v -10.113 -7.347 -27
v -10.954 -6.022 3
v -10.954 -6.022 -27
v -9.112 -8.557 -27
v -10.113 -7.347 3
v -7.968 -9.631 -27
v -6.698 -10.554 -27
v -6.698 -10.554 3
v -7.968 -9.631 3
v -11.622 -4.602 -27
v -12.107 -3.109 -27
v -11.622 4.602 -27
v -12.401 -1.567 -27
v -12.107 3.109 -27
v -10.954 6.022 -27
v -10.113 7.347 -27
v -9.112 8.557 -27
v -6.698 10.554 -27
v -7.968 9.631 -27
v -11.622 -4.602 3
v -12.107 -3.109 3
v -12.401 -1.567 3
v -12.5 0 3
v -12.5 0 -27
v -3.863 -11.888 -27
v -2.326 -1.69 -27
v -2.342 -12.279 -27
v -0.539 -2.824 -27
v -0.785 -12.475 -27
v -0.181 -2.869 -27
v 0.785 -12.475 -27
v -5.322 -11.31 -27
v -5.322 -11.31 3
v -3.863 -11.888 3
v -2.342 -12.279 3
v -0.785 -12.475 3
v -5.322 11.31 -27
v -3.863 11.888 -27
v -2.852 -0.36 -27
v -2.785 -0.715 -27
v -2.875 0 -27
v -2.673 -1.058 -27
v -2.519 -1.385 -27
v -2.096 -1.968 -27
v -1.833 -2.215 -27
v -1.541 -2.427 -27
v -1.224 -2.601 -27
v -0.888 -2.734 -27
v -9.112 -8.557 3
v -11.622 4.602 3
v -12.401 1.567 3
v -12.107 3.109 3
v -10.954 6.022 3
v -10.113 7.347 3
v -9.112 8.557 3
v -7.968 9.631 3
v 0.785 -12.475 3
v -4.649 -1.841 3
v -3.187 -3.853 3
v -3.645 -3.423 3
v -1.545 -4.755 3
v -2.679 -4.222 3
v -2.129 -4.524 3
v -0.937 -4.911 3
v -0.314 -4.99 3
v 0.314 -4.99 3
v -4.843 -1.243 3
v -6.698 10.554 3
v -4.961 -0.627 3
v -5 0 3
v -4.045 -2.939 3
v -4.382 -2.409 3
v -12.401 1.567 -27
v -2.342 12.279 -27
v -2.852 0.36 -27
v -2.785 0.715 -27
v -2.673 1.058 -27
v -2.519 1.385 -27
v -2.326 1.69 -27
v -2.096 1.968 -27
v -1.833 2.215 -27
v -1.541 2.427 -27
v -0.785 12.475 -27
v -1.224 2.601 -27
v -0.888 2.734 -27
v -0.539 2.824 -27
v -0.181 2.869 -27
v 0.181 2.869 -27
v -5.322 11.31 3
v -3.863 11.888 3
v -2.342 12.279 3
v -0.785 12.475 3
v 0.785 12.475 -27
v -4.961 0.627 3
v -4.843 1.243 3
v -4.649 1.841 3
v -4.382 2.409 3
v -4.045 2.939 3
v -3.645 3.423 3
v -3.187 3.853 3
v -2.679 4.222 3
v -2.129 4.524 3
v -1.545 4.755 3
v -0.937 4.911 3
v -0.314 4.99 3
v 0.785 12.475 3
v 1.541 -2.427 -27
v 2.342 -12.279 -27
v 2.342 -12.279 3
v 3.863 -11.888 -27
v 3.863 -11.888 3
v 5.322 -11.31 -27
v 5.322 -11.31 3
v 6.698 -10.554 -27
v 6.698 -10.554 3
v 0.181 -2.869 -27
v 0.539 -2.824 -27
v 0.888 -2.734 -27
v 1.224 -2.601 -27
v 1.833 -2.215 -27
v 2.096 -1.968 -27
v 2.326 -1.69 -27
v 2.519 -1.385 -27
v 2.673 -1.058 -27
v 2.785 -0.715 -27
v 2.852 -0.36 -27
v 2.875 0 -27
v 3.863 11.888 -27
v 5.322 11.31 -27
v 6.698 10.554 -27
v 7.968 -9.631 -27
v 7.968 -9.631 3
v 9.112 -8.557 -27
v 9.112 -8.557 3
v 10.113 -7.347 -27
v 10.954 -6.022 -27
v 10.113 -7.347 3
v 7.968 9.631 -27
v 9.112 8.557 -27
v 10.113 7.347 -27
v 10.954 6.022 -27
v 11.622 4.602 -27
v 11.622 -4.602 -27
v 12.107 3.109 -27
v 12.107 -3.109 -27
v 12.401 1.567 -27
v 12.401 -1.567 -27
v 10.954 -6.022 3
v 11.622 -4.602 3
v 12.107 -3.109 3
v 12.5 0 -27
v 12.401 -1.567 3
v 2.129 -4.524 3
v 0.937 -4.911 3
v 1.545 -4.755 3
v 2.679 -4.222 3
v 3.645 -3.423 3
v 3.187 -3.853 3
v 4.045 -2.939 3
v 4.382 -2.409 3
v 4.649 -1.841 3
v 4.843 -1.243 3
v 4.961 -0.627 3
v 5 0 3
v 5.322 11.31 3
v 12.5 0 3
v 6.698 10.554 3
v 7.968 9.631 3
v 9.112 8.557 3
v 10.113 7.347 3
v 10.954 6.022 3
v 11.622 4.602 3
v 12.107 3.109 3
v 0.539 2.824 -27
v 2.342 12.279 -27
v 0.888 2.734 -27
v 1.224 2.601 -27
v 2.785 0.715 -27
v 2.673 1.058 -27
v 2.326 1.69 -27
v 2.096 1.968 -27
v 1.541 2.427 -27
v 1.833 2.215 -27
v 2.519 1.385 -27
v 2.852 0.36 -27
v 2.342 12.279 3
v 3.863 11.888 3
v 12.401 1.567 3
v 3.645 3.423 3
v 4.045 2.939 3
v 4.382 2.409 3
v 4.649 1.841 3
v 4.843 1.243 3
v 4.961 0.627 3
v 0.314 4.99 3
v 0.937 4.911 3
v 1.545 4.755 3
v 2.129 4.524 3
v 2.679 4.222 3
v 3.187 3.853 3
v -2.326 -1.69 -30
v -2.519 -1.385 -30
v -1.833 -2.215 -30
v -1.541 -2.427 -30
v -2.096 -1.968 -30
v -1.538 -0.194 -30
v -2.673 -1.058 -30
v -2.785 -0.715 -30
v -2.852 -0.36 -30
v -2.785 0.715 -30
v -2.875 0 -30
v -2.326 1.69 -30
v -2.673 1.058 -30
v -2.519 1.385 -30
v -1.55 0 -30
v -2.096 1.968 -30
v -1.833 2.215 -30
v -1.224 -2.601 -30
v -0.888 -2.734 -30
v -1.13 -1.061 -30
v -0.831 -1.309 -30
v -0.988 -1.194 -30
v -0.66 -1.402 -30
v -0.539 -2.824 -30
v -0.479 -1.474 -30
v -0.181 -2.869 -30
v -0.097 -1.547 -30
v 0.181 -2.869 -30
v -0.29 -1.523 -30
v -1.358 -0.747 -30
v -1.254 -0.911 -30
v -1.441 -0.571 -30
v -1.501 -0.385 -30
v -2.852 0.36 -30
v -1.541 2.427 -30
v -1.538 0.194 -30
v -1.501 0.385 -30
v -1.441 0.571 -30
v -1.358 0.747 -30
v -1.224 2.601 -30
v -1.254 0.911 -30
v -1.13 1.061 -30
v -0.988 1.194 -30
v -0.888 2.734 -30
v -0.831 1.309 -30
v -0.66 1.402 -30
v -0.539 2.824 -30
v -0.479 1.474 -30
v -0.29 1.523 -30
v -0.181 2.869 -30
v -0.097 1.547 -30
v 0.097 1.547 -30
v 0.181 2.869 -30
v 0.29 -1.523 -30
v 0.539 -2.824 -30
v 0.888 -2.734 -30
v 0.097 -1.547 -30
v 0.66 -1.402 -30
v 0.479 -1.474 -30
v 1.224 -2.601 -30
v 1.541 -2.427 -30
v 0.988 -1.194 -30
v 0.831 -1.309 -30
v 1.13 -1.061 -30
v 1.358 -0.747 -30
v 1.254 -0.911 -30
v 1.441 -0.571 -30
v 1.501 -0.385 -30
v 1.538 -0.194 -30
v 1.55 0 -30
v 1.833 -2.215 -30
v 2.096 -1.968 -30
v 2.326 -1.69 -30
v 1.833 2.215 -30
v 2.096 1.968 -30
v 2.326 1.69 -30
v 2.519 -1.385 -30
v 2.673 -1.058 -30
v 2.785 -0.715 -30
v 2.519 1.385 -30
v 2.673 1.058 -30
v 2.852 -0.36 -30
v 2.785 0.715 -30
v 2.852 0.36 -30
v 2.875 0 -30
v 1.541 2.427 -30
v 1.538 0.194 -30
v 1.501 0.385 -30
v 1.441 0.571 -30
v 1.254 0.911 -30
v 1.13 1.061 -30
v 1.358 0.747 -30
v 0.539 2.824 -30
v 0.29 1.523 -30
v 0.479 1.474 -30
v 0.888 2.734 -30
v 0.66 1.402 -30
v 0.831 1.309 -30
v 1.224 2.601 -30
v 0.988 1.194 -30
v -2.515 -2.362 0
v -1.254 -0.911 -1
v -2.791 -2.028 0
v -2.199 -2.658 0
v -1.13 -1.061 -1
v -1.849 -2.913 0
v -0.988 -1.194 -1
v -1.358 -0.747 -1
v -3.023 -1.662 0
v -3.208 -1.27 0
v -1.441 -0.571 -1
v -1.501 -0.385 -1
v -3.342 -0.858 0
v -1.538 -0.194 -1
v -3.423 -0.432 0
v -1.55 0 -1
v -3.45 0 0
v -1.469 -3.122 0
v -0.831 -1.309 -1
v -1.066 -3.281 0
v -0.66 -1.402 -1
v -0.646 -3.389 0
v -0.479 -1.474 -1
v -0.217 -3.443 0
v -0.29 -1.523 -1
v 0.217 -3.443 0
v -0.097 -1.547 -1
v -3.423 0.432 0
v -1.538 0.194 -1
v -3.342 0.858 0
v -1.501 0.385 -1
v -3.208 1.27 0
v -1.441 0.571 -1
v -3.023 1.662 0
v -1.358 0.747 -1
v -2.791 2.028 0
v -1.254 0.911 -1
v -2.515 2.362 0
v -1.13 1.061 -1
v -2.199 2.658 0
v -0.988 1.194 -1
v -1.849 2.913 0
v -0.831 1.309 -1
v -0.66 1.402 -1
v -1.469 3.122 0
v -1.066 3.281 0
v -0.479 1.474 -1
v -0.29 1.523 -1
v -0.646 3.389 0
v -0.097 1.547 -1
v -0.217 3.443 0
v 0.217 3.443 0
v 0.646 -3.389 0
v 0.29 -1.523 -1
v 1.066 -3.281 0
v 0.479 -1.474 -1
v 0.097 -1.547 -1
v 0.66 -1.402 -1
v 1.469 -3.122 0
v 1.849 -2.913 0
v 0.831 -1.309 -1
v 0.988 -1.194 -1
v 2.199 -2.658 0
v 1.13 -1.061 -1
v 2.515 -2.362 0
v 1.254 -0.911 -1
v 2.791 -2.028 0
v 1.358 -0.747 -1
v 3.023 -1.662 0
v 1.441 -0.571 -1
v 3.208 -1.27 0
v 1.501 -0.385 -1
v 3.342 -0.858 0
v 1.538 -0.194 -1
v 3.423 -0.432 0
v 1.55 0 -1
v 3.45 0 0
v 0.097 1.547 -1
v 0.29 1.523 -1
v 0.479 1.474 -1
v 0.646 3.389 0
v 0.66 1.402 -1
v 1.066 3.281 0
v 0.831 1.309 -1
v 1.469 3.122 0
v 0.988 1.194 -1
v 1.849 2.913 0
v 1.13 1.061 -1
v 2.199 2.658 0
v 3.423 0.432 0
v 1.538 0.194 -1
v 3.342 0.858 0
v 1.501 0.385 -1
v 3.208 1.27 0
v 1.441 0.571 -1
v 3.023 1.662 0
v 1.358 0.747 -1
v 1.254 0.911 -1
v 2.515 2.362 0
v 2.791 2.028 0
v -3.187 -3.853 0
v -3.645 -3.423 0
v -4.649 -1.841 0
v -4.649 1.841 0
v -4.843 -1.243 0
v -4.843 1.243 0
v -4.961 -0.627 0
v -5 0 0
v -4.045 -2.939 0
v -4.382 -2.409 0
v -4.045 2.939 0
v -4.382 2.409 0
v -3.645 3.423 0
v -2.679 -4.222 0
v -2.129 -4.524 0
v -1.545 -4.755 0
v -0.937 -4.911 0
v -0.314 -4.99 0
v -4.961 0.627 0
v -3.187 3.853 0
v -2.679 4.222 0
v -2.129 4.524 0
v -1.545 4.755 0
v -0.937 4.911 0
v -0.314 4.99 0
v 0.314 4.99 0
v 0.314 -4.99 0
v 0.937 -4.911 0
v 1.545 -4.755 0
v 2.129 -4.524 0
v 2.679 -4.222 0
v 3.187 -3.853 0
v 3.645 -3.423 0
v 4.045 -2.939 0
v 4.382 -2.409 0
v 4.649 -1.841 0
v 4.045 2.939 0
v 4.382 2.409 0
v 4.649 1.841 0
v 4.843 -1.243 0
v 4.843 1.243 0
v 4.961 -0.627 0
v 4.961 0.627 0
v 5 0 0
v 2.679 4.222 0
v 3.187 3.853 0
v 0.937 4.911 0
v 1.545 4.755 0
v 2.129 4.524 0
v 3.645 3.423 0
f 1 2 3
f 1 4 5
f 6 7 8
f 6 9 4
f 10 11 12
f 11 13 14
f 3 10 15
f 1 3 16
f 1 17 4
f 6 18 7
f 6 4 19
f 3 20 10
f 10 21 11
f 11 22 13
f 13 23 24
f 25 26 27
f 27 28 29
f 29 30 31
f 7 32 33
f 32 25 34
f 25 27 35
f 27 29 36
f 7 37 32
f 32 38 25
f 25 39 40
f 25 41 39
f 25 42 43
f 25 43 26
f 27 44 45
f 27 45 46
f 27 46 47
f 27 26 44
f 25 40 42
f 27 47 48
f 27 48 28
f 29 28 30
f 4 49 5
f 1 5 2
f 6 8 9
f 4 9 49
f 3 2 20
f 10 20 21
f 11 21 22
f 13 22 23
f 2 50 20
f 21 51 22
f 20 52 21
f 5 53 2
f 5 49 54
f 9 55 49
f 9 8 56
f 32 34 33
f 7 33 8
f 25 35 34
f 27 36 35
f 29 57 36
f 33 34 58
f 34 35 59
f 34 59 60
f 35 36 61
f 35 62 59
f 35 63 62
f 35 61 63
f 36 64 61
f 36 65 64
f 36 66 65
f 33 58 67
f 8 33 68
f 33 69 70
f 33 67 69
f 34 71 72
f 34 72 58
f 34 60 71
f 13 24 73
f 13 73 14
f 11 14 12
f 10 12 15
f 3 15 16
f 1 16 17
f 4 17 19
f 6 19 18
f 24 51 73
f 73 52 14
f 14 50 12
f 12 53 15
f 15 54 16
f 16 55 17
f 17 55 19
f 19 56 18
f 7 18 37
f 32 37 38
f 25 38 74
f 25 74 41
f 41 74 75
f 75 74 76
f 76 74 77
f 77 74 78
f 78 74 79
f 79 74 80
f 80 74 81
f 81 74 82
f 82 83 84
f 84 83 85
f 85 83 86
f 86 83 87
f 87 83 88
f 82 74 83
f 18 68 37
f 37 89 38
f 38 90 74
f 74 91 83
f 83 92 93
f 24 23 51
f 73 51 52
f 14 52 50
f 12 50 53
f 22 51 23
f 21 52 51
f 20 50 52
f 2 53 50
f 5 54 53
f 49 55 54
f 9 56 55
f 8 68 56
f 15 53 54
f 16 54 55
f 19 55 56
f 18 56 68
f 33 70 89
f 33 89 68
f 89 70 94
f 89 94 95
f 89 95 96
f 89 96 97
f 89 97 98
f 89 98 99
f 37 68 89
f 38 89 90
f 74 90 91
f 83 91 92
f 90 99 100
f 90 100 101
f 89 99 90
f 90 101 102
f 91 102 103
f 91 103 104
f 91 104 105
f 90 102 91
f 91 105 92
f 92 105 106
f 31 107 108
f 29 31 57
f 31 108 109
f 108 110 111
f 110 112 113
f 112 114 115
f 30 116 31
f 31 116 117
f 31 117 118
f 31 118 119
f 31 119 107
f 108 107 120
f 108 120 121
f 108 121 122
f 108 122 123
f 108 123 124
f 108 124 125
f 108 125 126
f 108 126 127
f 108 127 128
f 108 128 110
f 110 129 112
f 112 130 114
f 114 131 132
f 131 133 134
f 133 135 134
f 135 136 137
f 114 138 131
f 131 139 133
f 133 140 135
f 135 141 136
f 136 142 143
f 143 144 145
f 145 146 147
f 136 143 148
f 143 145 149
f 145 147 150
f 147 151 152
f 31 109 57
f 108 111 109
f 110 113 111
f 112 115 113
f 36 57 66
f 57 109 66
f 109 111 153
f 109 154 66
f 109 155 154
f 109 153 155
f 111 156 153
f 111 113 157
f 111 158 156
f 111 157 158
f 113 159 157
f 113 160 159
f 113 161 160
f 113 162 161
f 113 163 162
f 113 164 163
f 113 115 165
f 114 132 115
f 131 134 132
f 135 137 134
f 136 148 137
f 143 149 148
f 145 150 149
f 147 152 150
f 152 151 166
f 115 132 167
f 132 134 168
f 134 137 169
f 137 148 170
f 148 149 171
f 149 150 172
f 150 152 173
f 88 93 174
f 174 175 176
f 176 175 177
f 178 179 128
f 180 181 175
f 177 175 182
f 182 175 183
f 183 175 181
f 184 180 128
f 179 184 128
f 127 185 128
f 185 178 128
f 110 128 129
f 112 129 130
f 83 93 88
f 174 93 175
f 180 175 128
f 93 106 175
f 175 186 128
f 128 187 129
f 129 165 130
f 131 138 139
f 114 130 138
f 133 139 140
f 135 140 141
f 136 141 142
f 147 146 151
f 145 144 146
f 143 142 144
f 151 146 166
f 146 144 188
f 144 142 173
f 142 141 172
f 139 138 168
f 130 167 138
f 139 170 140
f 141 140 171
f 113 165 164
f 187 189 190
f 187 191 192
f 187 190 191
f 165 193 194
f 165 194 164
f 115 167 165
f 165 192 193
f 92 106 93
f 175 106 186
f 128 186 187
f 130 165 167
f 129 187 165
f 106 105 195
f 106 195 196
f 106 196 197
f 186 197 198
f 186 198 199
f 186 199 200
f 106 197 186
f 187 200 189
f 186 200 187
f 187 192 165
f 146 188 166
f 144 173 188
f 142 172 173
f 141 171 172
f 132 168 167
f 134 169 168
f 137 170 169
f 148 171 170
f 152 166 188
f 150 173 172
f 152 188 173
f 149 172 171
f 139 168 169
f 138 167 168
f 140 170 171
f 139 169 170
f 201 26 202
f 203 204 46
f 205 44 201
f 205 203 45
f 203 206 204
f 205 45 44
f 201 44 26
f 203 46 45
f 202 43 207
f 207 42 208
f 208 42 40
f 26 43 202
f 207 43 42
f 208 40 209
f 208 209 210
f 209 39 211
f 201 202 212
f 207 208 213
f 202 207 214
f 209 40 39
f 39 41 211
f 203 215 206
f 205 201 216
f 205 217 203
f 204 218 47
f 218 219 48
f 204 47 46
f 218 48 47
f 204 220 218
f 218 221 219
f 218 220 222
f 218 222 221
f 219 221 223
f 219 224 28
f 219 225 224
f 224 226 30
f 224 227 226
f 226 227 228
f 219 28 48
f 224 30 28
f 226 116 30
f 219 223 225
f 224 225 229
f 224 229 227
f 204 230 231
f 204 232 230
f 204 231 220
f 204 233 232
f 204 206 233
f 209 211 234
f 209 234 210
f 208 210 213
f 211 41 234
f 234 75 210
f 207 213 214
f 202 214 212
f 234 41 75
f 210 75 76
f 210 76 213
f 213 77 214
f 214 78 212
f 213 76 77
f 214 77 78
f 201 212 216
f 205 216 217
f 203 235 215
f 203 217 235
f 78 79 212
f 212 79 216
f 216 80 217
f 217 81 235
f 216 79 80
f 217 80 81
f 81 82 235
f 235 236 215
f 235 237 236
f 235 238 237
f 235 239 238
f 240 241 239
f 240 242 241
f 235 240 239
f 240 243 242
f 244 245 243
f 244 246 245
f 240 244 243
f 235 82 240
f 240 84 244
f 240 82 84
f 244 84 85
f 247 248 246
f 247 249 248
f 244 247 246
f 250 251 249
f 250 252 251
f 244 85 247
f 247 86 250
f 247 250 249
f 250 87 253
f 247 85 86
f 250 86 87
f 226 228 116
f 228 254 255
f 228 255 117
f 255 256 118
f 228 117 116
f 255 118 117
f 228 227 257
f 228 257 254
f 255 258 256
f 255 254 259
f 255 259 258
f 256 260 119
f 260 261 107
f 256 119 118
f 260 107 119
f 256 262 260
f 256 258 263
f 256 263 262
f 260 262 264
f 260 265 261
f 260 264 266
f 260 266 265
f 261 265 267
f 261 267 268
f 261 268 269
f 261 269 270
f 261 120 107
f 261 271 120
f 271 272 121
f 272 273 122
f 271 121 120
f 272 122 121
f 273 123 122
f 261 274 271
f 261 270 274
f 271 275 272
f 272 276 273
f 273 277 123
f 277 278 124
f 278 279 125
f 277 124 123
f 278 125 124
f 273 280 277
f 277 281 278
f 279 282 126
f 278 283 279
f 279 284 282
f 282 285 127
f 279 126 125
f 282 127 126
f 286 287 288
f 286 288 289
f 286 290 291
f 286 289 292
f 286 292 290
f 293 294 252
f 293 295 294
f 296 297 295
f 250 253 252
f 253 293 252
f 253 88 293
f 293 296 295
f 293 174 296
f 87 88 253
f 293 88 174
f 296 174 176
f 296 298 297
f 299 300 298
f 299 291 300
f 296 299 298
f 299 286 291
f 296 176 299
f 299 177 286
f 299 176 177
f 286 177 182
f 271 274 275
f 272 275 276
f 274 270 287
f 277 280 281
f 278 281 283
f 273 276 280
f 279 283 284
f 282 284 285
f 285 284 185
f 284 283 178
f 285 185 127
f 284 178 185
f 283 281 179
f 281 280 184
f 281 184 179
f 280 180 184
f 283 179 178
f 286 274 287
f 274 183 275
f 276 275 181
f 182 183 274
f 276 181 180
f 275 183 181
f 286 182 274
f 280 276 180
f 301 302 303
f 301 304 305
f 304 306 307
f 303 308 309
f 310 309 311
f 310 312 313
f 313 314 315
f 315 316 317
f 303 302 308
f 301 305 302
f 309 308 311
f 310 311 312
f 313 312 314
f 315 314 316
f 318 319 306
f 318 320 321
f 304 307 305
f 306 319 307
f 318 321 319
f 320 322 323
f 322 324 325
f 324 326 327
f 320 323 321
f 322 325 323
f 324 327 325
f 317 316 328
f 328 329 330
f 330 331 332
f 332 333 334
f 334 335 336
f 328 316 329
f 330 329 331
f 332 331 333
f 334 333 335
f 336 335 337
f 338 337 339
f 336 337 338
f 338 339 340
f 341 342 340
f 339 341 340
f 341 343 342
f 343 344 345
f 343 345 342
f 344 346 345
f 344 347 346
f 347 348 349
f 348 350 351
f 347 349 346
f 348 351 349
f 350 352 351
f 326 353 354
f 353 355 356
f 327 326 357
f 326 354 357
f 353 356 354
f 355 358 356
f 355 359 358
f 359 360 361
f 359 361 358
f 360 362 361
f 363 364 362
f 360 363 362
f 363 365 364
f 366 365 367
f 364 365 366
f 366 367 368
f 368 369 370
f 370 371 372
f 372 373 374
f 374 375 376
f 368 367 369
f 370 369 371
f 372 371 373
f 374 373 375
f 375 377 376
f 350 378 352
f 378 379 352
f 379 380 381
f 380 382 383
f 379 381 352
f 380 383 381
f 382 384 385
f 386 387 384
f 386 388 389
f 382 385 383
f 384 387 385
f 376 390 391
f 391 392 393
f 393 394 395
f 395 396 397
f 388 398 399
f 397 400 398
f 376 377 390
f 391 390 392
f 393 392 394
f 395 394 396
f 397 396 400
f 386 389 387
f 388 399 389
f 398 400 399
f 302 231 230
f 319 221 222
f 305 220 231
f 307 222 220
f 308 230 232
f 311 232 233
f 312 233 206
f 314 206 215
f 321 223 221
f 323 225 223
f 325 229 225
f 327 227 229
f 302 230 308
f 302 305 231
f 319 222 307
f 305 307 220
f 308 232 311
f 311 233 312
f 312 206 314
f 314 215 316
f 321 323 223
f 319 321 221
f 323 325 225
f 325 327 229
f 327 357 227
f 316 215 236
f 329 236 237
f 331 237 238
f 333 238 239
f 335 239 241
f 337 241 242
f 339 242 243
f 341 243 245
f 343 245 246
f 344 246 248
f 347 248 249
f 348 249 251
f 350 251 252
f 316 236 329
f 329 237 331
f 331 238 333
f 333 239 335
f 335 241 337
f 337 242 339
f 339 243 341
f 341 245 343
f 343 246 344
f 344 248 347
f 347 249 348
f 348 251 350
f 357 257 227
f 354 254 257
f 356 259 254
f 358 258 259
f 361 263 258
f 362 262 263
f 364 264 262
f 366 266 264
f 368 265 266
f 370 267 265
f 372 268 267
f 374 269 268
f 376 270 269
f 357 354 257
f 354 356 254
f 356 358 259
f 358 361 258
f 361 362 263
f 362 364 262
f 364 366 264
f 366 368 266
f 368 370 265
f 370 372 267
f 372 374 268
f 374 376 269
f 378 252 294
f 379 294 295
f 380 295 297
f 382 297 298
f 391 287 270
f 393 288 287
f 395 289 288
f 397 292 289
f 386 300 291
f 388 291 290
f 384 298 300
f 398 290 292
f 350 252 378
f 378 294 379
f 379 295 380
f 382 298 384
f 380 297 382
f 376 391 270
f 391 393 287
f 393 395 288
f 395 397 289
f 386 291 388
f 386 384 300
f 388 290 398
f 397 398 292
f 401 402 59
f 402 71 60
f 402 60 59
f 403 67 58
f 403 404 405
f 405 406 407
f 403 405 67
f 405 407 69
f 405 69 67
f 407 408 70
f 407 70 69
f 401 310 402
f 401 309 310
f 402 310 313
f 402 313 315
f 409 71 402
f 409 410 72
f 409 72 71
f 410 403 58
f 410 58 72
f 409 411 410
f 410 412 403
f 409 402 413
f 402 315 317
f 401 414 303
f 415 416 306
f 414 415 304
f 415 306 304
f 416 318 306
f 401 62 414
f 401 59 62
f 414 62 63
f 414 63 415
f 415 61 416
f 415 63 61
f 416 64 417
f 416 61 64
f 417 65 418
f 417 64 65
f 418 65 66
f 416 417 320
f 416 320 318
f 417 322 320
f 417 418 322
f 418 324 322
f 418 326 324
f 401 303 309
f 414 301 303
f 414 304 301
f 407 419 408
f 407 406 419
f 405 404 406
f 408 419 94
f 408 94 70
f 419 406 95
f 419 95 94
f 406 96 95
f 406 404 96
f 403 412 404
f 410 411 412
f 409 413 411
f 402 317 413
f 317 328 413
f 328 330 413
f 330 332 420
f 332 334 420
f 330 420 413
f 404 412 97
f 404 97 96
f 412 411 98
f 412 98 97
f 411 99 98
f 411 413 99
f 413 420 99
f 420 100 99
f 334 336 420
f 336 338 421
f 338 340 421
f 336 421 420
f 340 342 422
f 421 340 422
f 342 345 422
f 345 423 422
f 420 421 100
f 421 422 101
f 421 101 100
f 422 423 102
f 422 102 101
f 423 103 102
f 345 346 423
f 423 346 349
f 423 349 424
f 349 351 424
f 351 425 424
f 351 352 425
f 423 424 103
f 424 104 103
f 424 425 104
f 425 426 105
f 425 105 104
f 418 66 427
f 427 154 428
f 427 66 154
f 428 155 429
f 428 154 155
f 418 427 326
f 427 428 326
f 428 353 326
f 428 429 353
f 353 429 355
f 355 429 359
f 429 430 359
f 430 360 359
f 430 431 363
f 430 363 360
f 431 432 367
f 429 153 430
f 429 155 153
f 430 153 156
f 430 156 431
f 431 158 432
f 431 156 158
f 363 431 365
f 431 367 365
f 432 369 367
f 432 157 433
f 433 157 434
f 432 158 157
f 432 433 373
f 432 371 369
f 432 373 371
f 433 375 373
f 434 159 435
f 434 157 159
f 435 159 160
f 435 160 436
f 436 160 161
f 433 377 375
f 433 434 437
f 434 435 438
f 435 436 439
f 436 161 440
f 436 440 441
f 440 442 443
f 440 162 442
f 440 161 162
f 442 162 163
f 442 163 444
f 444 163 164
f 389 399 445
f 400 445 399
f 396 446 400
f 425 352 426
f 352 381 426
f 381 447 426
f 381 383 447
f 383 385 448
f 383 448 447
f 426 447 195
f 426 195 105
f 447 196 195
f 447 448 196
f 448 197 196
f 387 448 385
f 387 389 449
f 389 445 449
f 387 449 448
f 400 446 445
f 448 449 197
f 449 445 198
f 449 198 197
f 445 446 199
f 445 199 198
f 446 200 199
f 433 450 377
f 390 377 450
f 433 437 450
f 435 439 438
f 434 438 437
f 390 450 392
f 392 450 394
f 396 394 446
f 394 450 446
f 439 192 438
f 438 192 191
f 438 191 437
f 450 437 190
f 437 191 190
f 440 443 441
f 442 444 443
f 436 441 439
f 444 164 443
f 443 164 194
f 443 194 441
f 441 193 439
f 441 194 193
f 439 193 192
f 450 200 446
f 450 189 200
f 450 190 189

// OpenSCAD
$fn = 50;

difference() {
	union() {
		translate(v = [0, 0, -27.0]) {
			cylinder(h = 30, r = 12.5);
		}
		#translate(v = [0, 0, -30.0]) {
			cylinder(h = 30, r = 2.875);
		}
	}
	union() {
		translate(v = [0, 0, 0]) {
			rotate(a = [0, 0, 0]) {
				difference() {
					union() {
						translate(v = [0, 0, -30.0]) {
							cylinder(h = 30, r = 1.25);
						}
						translate(v = [0, 0, -1.0]) {
							cylinder(h = 1.0, r1 = 1.55, r2 = 3.45);
						}
						translate(v = [0, 0, -30.0]) {
							cylinder(h = 30, r = 1.55);
						}
						translate(v = [0, 0, -30.0]) {
							cylinder(h = 30, r = 1.25);
						}
					}
					union();
				}
			}
		}
		#cylinder(h = 3, r = 5.0);
	}
}
